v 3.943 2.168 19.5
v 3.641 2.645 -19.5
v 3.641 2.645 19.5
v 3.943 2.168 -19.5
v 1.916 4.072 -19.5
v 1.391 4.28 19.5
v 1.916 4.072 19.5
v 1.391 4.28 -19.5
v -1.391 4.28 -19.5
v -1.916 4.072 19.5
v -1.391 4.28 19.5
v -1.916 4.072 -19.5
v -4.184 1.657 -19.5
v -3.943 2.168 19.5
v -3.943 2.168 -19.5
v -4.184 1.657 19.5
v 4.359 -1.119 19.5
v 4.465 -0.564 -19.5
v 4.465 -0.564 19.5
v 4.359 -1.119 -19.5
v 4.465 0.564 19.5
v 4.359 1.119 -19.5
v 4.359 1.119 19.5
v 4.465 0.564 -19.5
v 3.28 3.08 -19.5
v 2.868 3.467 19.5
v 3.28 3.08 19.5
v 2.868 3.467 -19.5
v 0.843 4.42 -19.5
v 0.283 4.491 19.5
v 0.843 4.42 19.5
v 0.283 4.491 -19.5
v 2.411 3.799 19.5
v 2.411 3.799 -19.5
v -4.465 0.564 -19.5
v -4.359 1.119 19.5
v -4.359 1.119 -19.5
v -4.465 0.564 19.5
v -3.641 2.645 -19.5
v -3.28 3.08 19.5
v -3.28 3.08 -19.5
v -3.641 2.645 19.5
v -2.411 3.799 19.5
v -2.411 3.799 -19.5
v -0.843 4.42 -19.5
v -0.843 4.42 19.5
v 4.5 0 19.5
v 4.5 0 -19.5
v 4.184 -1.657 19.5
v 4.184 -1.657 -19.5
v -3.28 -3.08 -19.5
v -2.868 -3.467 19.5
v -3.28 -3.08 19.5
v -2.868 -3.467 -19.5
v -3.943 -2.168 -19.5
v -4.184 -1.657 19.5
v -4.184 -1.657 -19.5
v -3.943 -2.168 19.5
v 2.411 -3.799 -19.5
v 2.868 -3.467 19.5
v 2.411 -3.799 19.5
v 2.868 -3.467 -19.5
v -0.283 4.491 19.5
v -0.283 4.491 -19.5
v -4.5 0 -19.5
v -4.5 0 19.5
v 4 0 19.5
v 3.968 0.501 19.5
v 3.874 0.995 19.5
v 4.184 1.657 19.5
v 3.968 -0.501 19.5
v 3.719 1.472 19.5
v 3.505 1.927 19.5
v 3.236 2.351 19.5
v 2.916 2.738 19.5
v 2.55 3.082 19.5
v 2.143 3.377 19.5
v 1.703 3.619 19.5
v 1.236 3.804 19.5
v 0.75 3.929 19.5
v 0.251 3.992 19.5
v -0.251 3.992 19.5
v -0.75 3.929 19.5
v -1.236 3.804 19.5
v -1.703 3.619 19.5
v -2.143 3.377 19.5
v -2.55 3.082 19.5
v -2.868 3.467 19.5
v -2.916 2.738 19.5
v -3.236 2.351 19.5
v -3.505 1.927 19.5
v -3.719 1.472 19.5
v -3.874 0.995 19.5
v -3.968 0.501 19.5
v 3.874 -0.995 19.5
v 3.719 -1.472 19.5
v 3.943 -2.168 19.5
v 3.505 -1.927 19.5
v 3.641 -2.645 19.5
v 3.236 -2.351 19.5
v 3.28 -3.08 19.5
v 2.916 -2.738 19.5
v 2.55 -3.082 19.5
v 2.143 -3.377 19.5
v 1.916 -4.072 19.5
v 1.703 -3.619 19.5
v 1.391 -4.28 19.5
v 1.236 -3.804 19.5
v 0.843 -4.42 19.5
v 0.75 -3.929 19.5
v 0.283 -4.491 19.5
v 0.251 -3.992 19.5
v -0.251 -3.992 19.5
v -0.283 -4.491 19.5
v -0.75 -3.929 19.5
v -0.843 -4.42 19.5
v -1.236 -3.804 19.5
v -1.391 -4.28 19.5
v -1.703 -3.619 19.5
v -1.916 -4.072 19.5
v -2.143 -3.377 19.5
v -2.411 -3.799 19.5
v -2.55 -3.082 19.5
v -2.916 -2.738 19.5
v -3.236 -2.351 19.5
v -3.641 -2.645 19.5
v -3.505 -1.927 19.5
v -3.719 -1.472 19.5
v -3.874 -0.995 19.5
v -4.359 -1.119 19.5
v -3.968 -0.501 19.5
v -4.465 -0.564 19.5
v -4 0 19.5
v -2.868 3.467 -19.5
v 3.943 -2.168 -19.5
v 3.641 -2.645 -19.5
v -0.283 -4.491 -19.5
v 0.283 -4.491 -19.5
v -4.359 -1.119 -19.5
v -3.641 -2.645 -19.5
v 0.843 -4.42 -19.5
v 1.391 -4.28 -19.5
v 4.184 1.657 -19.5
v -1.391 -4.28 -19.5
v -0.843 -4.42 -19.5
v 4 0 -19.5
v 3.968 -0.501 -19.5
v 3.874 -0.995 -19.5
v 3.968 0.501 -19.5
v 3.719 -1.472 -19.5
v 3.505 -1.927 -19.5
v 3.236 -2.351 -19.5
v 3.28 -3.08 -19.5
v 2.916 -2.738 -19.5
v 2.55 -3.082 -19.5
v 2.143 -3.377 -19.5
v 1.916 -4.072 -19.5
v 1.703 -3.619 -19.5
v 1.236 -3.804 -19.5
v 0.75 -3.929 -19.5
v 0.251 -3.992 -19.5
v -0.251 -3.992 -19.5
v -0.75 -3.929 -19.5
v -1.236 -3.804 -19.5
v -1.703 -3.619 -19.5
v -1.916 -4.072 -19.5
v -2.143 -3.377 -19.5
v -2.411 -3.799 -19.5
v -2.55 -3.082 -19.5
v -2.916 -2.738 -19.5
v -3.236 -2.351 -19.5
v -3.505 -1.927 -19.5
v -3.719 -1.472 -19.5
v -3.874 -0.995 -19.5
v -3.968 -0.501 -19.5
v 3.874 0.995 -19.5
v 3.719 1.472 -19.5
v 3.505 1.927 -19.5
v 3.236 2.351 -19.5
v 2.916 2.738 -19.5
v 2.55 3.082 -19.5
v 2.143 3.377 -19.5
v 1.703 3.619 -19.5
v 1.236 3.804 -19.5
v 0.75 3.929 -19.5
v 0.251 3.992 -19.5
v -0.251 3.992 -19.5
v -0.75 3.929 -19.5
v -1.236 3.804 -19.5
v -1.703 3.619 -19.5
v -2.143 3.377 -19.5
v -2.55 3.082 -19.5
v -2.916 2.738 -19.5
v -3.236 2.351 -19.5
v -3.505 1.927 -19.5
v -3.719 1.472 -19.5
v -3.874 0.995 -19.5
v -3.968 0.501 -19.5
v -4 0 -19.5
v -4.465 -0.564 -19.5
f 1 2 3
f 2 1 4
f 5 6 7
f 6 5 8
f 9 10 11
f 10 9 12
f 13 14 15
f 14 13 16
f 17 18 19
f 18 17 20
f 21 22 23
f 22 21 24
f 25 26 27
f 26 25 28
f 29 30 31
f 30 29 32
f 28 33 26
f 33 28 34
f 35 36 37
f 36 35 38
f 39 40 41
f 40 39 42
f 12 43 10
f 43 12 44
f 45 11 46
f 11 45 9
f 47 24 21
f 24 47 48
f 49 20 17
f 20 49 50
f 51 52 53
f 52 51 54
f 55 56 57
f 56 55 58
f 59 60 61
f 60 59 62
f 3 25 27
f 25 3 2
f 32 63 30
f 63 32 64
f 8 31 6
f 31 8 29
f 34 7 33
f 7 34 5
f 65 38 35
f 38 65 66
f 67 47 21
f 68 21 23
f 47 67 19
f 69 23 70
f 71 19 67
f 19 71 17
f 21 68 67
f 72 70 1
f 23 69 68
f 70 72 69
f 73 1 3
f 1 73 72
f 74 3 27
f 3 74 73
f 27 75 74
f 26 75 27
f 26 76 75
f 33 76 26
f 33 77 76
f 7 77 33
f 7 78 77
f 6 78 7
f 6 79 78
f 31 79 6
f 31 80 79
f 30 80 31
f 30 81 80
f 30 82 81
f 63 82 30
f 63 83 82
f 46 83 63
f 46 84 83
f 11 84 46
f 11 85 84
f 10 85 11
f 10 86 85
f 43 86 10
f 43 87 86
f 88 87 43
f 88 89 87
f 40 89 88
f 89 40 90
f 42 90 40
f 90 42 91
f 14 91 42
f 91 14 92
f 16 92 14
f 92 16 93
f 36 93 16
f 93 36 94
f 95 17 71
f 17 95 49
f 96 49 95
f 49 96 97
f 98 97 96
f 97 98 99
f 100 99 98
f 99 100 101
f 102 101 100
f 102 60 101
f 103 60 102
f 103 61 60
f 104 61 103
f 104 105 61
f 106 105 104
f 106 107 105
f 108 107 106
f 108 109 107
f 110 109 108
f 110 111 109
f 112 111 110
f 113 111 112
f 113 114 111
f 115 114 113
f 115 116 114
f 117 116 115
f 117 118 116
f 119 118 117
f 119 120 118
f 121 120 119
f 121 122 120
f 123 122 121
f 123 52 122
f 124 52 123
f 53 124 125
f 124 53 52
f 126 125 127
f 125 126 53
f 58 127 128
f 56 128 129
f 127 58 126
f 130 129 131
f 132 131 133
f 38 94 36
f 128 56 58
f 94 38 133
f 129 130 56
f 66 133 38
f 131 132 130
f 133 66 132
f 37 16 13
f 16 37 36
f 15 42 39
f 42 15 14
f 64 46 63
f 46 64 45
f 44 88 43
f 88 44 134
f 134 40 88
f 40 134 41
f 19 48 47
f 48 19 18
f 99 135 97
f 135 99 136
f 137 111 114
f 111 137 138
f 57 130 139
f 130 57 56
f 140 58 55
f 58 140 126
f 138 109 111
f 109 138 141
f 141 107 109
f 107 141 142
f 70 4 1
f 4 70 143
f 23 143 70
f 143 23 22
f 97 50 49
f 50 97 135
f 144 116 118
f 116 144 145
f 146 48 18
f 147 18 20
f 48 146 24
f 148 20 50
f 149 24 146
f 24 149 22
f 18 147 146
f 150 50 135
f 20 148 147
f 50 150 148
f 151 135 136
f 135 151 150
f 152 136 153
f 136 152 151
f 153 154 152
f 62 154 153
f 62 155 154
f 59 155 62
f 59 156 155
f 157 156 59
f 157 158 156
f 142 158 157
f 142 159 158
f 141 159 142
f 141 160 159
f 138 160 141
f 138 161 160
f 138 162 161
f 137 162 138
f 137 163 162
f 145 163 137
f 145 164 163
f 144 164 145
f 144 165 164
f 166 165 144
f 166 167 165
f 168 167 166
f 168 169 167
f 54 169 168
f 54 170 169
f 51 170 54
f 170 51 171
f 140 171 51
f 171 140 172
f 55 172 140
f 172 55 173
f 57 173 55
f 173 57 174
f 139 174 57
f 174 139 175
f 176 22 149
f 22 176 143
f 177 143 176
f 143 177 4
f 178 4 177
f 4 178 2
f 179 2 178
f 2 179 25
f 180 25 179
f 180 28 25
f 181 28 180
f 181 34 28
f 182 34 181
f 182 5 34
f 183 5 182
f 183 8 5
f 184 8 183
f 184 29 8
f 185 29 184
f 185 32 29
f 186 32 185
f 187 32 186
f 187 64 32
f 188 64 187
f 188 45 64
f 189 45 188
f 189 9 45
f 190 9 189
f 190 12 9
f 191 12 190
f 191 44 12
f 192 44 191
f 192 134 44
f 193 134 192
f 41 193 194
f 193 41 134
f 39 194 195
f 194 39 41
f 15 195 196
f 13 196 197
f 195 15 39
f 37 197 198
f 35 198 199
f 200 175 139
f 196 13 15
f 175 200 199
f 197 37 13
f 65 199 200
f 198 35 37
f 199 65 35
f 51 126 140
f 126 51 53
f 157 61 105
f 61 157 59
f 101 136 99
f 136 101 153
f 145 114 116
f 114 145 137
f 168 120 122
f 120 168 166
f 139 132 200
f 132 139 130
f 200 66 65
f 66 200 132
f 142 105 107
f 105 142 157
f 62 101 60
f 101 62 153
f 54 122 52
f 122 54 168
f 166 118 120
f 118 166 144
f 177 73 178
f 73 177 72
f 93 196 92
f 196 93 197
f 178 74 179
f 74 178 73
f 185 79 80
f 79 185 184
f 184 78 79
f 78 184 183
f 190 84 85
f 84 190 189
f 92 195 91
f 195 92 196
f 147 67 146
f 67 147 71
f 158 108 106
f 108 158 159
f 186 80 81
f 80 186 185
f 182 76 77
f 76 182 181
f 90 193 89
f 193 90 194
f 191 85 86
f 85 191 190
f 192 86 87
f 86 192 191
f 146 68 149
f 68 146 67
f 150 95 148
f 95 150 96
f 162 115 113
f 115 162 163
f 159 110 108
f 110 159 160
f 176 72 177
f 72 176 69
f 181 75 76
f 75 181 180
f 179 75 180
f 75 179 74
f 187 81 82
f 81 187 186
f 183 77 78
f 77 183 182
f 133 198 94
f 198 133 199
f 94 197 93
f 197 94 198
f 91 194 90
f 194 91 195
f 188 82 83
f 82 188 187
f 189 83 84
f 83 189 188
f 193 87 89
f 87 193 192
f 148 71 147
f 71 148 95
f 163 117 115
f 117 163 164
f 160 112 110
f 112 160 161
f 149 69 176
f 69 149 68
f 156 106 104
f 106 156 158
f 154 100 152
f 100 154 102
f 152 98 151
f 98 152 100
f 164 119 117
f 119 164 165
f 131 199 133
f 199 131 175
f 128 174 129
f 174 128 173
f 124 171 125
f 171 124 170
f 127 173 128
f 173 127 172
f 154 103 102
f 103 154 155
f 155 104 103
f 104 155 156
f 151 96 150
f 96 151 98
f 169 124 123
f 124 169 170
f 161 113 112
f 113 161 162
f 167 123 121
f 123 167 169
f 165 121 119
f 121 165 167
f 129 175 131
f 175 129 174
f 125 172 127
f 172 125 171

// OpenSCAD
$fn = 50;


difference() {
	union() {
		translate(v = [0, 0, -19.5000000000]) {
			cylinder(h = 39, r = 4.5000000000);
		}
	}
	union() {
		translate(v = [0, 0, -100.0000000000]) {
			cylinder(h = 200, r = 4);
		}
	}
}
